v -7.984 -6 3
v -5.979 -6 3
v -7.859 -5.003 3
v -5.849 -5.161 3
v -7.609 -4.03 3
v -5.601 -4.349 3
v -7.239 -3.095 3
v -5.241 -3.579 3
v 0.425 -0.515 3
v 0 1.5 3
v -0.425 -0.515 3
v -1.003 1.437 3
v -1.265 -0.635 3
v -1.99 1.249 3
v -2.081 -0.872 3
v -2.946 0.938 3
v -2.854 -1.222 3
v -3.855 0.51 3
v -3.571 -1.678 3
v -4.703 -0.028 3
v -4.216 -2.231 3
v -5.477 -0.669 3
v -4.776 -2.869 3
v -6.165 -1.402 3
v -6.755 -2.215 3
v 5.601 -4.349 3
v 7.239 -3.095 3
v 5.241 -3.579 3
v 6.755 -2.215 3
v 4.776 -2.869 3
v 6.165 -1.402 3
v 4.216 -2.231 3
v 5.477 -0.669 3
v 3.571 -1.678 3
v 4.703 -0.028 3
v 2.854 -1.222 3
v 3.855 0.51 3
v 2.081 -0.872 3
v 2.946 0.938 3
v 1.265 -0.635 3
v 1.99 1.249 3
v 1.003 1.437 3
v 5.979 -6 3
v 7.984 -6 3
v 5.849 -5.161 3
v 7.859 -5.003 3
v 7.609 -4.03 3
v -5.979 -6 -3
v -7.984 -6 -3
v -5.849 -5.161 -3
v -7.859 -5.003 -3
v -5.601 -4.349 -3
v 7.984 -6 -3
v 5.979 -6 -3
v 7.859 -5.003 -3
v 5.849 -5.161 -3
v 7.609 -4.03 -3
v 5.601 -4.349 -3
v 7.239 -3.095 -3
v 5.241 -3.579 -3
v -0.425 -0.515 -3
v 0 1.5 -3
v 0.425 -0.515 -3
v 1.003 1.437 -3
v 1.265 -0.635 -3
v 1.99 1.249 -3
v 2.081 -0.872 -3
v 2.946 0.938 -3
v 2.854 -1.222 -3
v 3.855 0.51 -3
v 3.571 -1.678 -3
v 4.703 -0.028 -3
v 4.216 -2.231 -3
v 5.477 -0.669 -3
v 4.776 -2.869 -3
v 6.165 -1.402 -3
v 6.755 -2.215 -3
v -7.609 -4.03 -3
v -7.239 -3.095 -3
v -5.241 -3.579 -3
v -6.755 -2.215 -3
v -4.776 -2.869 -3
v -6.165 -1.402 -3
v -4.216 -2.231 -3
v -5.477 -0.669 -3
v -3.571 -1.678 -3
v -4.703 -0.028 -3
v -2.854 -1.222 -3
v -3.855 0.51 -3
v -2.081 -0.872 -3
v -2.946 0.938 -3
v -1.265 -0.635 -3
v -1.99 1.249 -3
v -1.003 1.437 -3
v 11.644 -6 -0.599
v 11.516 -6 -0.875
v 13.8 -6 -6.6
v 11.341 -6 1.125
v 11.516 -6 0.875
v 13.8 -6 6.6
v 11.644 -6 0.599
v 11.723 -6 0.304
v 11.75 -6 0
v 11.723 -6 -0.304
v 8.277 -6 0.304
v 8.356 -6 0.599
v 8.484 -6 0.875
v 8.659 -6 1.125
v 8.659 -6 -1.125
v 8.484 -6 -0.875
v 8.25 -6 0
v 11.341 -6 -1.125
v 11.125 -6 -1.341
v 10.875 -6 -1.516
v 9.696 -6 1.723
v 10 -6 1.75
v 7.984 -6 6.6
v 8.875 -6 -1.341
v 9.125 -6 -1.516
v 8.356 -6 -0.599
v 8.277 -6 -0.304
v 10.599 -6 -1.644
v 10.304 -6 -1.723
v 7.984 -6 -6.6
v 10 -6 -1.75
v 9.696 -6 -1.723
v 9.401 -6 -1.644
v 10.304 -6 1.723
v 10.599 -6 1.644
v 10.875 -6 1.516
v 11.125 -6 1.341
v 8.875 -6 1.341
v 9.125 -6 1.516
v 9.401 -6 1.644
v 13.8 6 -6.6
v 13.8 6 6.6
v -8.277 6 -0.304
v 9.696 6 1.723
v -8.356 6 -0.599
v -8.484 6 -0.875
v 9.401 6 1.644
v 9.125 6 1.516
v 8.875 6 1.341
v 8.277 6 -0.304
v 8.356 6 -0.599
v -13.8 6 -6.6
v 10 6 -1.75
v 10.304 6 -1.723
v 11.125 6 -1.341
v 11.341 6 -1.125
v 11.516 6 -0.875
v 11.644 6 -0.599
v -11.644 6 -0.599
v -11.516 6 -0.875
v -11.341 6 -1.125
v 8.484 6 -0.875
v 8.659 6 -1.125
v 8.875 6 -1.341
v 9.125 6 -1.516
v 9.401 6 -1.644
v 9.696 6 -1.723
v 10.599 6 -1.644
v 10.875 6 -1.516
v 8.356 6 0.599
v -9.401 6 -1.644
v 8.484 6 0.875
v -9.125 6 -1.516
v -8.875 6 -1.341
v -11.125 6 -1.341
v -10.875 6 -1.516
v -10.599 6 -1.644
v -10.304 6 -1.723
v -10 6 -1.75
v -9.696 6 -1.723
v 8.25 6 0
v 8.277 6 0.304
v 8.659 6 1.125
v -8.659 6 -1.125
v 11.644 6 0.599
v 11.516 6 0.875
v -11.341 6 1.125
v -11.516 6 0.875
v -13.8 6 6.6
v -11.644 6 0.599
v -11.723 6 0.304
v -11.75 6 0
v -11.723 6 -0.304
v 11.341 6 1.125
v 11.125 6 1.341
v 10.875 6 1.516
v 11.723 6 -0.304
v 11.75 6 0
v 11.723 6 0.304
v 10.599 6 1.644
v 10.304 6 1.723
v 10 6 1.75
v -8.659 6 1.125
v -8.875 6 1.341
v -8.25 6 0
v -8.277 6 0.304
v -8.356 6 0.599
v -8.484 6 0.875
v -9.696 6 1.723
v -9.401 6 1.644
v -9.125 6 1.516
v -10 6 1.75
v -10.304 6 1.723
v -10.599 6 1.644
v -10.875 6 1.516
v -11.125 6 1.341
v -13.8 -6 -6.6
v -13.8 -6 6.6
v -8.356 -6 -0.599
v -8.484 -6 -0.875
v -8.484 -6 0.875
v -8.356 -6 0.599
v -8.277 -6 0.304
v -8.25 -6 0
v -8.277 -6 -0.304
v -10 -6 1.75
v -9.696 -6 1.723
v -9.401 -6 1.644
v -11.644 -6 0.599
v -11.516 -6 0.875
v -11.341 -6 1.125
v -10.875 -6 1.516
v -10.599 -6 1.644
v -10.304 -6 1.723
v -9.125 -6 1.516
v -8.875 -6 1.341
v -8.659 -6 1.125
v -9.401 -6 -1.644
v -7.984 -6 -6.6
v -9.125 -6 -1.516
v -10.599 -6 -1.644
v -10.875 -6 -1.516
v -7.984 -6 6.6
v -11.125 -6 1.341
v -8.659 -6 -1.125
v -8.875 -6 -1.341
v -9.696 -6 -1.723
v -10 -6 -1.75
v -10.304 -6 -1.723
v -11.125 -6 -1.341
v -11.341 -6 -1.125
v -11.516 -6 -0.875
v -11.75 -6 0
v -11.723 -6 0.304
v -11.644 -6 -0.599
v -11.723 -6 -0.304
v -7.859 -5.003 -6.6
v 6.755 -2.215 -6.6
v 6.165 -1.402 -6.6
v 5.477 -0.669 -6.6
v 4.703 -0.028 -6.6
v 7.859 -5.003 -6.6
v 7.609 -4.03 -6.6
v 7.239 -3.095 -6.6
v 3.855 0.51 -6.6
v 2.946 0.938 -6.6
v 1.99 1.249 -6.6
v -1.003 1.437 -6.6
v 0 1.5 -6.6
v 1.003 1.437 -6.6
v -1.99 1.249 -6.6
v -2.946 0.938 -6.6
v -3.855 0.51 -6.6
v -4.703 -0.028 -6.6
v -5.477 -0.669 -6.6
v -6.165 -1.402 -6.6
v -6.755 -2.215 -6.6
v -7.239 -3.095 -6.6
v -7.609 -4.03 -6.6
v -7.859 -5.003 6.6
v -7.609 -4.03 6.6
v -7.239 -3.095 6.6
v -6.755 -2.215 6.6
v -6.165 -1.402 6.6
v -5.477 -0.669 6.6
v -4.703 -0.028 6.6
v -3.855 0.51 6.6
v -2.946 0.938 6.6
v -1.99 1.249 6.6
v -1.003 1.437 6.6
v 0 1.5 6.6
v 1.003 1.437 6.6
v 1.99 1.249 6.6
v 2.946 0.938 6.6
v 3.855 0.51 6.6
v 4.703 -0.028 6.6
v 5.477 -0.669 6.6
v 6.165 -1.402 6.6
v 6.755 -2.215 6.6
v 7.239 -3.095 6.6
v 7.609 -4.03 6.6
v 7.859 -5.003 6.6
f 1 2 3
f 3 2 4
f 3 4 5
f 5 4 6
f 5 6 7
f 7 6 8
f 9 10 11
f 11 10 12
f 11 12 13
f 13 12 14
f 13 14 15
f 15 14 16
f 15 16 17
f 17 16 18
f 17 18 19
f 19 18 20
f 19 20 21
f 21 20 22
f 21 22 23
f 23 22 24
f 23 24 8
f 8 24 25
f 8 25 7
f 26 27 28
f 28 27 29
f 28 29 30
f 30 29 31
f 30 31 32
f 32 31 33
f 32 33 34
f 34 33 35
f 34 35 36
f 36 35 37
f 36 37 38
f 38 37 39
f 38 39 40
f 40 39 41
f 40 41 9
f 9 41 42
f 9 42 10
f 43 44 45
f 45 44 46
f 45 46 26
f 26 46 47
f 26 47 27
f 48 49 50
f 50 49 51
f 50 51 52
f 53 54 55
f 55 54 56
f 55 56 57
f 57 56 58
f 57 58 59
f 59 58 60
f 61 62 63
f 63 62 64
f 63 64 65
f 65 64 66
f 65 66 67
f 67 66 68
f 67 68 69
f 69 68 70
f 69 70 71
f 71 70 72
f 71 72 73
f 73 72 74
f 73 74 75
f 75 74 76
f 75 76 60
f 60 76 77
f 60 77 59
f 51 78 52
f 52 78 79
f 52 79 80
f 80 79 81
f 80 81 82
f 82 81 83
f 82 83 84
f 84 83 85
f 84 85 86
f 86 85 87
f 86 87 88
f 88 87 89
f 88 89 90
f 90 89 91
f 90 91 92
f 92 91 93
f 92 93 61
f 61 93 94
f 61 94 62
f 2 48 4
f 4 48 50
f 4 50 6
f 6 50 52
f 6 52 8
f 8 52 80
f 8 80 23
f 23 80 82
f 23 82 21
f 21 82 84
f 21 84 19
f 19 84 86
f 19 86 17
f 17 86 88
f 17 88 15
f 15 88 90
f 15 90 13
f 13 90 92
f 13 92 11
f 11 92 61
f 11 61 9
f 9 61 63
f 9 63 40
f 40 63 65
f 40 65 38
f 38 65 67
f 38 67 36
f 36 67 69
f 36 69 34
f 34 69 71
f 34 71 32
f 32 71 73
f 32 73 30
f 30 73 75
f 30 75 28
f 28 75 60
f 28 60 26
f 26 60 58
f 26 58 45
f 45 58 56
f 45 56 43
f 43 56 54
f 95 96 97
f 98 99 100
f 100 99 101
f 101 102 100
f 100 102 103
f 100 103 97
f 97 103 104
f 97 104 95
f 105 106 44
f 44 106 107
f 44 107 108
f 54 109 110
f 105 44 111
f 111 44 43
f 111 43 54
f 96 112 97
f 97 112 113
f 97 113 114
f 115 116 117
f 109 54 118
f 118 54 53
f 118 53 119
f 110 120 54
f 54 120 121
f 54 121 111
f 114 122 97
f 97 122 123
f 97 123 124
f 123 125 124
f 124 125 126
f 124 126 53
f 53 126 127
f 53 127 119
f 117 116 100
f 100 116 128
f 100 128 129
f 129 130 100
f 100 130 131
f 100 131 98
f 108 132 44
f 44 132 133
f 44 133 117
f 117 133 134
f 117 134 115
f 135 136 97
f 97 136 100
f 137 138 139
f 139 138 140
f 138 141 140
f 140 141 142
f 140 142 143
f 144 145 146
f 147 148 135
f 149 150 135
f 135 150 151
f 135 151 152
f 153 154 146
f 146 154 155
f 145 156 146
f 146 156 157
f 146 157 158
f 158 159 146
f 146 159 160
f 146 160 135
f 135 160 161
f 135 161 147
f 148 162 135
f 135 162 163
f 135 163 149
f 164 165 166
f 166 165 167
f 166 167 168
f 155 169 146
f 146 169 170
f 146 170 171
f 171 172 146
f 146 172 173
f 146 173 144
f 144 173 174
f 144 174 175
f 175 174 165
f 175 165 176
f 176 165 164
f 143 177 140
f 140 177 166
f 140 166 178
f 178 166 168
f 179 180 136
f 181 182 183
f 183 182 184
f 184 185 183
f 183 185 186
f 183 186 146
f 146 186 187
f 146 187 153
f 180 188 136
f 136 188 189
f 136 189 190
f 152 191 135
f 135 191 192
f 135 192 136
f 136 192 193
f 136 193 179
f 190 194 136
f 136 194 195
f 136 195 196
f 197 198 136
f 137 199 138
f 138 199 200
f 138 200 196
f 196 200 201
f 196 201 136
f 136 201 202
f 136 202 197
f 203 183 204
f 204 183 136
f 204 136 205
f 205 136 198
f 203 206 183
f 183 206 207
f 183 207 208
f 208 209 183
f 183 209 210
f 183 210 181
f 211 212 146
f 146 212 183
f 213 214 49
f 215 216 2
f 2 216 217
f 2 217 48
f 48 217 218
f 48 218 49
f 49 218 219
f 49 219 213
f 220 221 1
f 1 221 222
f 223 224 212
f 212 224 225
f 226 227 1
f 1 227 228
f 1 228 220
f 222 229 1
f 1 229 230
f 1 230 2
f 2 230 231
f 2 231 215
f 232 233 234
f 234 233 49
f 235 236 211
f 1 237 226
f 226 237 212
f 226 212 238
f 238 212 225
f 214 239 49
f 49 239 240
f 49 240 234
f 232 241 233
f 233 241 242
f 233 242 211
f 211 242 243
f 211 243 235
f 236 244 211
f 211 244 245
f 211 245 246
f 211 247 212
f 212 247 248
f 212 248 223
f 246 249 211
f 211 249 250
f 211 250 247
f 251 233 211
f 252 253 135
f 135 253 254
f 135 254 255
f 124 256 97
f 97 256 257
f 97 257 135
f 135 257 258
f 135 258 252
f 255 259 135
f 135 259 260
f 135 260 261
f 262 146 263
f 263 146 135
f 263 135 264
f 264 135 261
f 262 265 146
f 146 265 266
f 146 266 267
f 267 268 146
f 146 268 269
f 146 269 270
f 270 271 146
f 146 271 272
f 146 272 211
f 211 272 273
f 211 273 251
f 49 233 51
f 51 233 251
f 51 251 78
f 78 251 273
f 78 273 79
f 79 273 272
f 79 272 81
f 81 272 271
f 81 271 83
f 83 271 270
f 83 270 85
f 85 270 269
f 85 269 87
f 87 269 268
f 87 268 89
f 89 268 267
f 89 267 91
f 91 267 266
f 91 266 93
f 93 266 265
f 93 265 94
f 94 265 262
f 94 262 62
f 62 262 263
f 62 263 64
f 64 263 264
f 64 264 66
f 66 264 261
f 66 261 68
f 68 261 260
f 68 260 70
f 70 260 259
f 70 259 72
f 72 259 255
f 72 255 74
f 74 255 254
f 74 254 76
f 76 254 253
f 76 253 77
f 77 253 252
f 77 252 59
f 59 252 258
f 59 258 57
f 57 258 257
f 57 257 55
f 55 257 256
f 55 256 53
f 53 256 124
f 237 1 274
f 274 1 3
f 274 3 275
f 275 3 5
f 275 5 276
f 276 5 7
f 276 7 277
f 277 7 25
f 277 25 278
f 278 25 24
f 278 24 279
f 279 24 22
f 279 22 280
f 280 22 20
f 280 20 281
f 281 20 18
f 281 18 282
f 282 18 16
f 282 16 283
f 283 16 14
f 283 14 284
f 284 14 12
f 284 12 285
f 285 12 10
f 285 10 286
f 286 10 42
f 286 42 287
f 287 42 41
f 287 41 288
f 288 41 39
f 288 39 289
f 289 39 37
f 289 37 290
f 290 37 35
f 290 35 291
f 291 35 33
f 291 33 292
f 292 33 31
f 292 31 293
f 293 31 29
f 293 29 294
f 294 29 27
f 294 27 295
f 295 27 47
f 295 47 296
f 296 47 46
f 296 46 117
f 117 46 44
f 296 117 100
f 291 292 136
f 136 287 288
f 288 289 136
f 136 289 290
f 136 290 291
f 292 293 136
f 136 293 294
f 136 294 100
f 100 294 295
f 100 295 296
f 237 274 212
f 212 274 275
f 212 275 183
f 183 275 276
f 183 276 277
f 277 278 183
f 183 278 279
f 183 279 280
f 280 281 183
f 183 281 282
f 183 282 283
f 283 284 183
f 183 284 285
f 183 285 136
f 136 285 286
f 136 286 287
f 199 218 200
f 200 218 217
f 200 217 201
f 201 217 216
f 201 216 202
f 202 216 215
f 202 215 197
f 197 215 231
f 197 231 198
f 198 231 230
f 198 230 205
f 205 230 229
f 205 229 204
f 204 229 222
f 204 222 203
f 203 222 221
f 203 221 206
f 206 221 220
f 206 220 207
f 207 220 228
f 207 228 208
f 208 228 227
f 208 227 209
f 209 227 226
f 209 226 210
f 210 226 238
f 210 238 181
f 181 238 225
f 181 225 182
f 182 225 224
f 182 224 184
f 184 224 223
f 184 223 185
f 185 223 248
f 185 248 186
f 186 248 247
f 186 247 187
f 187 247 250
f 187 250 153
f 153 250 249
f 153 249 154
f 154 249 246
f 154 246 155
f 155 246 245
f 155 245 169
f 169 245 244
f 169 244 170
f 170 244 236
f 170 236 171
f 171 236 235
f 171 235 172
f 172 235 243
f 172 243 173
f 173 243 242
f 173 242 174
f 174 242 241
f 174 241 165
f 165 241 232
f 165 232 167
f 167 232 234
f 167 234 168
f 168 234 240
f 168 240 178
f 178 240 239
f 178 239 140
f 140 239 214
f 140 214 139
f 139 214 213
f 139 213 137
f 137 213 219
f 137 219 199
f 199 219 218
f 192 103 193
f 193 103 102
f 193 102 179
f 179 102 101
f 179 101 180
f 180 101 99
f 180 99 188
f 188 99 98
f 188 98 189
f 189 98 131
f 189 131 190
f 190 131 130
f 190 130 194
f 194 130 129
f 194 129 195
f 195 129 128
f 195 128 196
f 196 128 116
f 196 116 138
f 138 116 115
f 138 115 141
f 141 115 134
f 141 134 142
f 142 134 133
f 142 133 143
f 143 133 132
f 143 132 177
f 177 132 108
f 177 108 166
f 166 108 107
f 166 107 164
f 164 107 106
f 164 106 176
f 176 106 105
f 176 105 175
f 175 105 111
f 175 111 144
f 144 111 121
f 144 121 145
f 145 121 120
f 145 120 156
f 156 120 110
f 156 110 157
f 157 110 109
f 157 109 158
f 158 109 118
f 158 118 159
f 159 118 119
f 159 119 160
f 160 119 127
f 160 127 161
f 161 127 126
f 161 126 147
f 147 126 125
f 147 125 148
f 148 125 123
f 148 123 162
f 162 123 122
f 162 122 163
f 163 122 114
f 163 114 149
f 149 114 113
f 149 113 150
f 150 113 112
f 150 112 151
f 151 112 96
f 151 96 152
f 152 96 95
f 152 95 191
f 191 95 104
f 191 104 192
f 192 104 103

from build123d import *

# Parameters (mm, degrees)
ESTRUSIONE_ESTRUSIONE1_DEPTH = 3
ESTRUSIONE_ESTRUSIONE2_DEPTH = 6.6
SCHIZZO3_R                   = 1.75
TAGLIO_ESTRUSIONE1_DEPTH     = 20.442222095


with BuildPart() as part:
    # Schizzo1 → Estrusione-Estrusione1 (new, symmetric)
    with BuildSketch(Plane.XY):
        with BuildLine():
            Line((-13.8, 6), (13.8, 6))
            Line((13.8, 6), (13.8, -6))
            Line((13.8, -6), (5.979130372, -6))
            ThreePointArc((5.979130372, -6), (0, -0.5), (-5.979130372, -6))
            Line((-5.979130372, -6), (-13.8, -6))
            Line((-13.8, -6), (-13.8, 6))
        make_face()
    extrude(amount=ESTRUSIONE_ESTRUSIONE1_DEPTH, both=True)

    # Schizzo2 → Estrusione-Estrusione2 (add, symmetric)
    with BuildSketch(Plane.XY):
        with BuildLine():
            Line((13.8, 6), (-13.8, 6))
            Line((-13.8, 6), (-13.8, -6))
            Line((-13.8, -6), (-7.984359711, -6))
            ThreePointArc((-7.984359711, -6), (0, 1.5), (7.984359711, -6))
            Line((7.984359711, -6), (13.8, -6))
            Line((13.8, -6), (13.8, 6))
        make_face()
    extrude(amount=ESTRUSIONE_ESTRUSIONE2_DEPTH, both=True)

    # Schizzo3 → Taglio-Estrusione1 (cut, through all)
    with BuildSketch(Plane.XZ.offset(6)):
        with Locations((-10, 0)):
            Circle(SCHIZZO3_R)
        with Locations((10, 0)):
            Circle(SCHIZZO3_R)
    extrude(amount=-TAGLIO_ESTRUSIONE1_DEPTH, mode=Mode.SUBTRACT)


solid = part.part
